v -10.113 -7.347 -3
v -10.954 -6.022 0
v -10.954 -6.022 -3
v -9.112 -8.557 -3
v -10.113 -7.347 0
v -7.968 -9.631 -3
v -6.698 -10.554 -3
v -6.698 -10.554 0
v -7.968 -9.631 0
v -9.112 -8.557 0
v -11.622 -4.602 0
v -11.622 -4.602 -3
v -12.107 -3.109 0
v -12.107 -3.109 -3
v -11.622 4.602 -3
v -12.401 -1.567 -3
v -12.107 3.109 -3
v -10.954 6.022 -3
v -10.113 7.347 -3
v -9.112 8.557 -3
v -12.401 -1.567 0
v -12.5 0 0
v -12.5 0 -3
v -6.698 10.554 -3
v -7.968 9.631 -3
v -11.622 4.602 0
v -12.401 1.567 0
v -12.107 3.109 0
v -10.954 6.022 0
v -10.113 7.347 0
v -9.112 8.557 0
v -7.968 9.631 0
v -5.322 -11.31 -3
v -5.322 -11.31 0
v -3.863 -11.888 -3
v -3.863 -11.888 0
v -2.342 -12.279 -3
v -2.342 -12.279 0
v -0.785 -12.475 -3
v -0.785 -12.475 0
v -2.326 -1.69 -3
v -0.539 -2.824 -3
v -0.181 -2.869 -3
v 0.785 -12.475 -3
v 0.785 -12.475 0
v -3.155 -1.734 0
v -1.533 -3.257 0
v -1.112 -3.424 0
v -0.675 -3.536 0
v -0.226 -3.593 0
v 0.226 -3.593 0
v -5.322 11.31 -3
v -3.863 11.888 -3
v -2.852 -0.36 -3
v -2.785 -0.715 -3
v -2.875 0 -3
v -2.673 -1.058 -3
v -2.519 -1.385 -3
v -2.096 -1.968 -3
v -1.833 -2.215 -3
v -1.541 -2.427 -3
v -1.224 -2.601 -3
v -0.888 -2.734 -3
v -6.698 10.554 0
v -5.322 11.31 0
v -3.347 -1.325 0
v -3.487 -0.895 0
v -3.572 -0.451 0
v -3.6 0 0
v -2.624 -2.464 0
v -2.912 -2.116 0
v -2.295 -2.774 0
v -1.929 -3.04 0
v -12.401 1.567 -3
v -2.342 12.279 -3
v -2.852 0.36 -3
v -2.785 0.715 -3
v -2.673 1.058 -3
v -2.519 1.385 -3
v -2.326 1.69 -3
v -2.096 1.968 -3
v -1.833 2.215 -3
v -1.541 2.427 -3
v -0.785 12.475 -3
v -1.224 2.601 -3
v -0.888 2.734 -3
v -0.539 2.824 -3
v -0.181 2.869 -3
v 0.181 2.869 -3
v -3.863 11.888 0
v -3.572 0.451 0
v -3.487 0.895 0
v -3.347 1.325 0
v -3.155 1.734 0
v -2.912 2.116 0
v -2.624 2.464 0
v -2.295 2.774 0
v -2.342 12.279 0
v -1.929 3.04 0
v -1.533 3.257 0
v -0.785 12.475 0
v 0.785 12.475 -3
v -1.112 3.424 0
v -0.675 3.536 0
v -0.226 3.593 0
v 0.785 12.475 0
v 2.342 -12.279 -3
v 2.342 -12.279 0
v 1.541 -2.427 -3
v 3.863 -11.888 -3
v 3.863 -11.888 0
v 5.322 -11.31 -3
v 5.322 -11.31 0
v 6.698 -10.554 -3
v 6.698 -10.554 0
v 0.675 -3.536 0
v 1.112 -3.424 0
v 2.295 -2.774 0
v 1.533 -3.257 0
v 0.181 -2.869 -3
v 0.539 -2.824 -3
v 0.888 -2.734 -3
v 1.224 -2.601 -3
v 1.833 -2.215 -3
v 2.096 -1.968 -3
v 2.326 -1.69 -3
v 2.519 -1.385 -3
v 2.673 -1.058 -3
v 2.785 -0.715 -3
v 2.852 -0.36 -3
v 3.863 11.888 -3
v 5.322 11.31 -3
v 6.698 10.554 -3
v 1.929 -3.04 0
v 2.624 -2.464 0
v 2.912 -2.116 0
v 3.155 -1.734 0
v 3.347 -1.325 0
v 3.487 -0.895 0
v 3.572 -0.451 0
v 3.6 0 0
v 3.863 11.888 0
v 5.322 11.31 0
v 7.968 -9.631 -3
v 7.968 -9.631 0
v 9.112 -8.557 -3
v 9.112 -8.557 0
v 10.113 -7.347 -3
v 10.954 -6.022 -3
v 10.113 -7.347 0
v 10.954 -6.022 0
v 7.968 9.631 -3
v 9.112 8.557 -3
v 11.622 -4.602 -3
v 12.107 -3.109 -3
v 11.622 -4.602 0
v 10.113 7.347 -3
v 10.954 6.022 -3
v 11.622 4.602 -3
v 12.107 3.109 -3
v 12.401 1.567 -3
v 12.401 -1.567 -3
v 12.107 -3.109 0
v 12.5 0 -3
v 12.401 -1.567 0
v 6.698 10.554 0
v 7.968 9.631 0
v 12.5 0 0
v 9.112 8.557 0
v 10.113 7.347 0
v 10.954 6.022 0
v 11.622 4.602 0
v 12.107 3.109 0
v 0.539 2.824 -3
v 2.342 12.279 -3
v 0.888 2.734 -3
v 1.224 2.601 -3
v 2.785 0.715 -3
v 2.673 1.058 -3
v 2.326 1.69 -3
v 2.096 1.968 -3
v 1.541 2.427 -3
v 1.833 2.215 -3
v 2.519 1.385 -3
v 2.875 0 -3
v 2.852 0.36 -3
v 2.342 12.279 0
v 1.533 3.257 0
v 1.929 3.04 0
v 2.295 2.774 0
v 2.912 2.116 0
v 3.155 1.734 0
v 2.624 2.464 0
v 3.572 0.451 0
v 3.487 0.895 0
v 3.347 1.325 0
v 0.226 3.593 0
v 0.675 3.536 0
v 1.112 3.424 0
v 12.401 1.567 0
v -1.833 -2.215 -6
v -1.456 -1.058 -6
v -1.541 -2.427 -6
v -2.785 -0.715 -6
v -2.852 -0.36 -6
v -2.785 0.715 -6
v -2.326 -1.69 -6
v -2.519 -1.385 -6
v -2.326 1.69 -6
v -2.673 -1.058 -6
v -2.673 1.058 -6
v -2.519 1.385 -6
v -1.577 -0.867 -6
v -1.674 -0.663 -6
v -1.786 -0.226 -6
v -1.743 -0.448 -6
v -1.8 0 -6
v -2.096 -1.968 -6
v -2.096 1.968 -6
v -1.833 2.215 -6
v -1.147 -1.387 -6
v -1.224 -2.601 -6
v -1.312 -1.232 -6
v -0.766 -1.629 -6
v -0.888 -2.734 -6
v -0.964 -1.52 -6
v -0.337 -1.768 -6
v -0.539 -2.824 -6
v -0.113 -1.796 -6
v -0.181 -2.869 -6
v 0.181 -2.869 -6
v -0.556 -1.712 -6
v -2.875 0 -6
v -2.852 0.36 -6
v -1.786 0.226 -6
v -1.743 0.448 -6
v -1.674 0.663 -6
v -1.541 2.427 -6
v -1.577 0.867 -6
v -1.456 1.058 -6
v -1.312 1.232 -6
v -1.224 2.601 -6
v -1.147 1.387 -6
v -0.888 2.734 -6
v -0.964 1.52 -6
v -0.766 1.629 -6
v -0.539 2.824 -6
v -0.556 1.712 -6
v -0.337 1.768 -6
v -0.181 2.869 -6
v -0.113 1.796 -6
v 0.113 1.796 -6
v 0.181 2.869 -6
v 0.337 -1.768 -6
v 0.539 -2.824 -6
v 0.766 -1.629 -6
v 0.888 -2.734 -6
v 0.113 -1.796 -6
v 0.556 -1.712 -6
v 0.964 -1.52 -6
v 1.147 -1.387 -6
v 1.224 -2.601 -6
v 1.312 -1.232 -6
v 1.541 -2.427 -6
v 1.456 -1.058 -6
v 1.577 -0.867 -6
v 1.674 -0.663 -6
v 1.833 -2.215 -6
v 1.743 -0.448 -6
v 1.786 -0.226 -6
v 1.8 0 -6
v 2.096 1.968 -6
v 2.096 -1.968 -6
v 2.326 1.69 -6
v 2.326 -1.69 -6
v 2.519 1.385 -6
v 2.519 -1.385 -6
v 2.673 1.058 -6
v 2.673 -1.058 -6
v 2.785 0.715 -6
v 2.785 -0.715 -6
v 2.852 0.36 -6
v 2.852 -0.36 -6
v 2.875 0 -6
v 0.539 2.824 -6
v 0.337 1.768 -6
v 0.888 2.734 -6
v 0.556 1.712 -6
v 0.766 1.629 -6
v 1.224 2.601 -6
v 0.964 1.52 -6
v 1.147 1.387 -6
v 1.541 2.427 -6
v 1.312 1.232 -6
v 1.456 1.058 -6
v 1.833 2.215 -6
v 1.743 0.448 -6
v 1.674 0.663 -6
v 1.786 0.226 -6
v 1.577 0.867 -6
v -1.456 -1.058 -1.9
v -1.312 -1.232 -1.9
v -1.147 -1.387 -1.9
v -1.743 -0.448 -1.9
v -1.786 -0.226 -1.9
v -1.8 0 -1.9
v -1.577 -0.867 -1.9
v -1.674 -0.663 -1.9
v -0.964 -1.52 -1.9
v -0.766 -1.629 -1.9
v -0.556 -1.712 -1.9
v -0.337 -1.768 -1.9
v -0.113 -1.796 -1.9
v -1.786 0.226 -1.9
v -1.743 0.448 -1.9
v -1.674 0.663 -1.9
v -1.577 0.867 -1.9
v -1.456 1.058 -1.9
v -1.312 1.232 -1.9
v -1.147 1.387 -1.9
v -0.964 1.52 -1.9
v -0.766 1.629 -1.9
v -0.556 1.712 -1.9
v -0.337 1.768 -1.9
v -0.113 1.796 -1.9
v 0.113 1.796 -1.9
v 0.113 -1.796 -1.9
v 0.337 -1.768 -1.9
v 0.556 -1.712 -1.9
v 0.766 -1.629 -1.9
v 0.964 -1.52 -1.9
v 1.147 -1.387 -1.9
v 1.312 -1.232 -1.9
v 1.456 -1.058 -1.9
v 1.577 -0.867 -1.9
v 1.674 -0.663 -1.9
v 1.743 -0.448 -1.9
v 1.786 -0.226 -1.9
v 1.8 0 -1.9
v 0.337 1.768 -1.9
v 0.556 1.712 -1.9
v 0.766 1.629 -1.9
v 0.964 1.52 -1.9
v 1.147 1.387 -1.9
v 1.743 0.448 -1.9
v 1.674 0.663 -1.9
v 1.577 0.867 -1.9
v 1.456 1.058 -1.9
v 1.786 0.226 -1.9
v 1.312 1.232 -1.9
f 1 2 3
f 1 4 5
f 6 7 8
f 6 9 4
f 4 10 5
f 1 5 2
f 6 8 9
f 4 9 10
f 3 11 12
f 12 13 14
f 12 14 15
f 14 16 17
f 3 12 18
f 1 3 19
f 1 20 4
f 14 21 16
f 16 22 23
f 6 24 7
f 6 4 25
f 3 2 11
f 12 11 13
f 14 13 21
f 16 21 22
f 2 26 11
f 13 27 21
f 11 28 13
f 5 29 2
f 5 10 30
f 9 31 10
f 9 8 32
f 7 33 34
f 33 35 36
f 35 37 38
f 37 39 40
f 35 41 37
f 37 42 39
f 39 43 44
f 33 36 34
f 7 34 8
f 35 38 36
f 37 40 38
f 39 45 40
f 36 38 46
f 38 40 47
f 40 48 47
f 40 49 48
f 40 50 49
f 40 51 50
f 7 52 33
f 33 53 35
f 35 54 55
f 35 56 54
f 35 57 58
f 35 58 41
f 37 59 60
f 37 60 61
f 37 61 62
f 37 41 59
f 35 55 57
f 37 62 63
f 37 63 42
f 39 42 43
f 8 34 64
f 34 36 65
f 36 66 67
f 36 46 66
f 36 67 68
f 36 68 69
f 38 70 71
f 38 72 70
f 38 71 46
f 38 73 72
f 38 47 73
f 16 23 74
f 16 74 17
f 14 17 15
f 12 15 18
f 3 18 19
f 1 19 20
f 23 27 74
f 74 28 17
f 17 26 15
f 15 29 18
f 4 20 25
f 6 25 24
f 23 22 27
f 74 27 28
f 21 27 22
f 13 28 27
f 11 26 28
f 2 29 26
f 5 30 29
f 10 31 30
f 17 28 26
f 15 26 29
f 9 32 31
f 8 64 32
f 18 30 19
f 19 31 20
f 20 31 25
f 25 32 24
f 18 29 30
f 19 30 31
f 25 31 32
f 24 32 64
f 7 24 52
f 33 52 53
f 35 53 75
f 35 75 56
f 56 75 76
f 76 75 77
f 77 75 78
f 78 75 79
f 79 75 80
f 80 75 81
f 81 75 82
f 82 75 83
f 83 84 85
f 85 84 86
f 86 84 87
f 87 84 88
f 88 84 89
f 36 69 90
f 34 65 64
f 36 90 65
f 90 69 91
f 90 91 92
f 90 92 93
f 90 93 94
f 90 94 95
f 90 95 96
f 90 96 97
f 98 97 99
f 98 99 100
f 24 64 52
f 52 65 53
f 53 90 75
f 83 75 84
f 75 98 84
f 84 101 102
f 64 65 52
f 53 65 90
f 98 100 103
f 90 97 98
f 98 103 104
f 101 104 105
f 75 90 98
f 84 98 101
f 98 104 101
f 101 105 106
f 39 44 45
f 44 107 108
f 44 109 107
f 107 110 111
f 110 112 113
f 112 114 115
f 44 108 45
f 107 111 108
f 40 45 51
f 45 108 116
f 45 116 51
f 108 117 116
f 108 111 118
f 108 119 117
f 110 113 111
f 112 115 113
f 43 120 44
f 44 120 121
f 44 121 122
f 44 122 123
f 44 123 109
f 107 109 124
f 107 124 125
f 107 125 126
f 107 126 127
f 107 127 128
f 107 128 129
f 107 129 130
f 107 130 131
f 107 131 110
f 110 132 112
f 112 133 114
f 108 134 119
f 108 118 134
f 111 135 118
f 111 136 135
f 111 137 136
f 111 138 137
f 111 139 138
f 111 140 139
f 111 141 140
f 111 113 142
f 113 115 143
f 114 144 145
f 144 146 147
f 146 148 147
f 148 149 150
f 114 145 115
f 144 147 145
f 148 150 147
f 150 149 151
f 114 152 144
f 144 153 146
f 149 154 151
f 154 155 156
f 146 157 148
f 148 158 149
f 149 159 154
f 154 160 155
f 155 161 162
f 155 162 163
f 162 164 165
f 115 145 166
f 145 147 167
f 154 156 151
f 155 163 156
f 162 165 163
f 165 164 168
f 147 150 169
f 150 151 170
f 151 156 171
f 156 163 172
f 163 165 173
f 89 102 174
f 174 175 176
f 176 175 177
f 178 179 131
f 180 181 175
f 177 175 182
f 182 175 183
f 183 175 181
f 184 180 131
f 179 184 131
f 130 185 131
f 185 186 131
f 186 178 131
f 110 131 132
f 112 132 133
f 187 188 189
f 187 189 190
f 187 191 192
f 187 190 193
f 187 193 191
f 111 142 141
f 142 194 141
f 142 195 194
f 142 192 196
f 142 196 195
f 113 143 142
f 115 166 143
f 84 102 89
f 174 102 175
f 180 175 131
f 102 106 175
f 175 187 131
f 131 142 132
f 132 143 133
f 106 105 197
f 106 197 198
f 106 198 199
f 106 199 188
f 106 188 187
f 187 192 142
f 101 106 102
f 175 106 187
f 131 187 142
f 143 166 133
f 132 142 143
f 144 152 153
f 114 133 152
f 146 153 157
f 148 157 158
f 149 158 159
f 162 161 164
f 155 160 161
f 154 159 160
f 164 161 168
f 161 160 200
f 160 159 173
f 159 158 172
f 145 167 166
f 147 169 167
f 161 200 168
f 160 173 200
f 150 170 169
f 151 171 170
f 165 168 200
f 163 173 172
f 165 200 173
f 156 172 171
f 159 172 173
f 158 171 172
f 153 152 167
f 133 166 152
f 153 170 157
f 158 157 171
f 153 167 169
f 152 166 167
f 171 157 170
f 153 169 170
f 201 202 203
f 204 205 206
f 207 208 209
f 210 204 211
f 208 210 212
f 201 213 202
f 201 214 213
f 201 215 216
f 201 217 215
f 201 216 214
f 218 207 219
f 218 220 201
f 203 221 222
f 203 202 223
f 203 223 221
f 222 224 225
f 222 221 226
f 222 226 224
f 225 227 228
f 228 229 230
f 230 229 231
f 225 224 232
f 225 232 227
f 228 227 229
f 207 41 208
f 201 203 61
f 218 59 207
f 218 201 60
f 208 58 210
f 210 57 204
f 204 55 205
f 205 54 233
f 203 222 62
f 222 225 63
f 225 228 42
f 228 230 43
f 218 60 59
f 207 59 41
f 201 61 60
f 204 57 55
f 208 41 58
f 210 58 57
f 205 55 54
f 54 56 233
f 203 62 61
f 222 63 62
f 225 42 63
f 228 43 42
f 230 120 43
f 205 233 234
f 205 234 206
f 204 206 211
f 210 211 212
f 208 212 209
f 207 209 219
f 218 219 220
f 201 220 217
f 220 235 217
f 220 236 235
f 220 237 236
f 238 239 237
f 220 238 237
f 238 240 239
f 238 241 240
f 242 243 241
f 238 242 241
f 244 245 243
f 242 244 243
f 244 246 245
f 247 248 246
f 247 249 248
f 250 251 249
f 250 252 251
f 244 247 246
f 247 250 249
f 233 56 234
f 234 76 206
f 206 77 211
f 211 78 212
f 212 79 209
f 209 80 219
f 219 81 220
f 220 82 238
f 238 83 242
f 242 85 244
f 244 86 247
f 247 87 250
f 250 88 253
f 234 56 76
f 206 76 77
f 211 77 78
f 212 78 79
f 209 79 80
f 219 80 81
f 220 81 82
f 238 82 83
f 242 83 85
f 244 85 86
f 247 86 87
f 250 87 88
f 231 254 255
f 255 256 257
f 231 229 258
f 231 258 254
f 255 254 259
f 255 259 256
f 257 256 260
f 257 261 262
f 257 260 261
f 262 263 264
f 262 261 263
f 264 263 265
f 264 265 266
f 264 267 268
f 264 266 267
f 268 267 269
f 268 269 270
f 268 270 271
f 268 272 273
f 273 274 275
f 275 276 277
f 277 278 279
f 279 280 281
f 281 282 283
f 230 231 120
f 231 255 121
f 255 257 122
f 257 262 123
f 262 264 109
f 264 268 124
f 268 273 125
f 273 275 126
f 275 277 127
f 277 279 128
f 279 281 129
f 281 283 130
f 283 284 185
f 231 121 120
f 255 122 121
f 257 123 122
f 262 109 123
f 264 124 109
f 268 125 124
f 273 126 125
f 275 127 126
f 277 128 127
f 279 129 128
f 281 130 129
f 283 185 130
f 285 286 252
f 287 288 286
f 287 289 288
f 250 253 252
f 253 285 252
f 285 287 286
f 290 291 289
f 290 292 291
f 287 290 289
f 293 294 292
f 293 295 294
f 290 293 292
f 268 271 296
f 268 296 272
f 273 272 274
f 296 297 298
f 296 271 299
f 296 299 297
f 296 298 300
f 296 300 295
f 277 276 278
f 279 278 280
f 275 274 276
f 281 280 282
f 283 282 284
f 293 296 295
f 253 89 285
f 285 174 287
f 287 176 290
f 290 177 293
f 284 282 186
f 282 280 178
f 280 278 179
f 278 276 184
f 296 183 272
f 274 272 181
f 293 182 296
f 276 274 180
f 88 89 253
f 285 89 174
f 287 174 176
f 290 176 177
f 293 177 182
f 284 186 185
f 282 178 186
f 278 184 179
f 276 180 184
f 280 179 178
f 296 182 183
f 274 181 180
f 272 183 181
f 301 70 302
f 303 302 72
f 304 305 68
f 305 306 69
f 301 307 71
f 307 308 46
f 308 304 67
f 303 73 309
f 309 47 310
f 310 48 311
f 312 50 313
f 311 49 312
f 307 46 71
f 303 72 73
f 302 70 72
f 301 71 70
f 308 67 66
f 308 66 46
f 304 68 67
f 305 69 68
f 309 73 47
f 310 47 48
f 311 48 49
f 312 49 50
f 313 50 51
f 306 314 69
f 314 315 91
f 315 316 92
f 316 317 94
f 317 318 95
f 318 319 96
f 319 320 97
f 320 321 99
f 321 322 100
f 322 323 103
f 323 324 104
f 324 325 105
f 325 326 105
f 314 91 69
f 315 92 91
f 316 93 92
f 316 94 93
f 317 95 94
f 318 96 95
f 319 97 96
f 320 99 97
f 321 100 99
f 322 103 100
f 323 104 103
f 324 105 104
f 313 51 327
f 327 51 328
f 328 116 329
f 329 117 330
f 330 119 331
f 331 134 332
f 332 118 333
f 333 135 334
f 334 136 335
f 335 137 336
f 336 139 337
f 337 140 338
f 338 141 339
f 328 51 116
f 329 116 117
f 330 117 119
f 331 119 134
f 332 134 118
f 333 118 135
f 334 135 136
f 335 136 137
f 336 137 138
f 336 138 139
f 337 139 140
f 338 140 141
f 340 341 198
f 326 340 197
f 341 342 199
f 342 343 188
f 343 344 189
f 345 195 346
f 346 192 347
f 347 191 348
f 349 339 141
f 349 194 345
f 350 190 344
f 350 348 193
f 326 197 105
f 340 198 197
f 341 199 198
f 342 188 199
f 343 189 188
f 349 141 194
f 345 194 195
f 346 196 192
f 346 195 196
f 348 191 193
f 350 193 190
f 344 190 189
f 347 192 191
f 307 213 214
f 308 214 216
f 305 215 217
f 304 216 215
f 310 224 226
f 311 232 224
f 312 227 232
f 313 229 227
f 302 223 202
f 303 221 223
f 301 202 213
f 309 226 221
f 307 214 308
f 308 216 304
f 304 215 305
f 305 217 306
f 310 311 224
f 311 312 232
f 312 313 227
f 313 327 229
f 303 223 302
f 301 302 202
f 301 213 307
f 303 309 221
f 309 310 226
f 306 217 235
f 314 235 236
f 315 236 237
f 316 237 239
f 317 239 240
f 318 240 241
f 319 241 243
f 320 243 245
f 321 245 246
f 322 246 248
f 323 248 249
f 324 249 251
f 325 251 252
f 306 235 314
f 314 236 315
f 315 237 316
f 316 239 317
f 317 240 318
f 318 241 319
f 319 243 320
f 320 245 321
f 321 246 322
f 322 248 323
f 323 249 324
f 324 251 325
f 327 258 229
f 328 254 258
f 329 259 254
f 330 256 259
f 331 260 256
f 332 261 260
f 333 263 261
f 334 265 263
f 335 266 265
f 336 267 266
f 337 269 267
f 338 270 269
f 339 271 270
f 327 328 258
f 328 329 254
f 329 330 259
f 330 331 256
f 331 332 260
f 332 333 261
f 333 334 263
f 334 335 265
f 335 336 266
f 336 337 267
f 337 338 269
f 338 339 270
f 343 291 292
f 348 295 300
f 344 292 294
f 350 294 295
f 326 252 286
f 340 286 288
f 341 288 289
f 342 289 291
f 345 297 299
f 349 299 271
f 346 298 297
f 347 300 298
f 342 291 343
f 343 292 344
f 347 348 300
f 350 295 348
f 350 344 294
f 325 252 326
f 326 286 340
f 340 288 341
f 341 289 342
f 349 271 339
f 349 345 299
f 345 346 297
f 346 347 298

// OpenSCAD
$fn = 50;

difference() {
	union() {
		translate(v = [0, 0, -3.0]) {
			cylinder(h = 3, r = 12.5);
		}
		#translate(v = [0, 0, -6.0]) {
			cylinder(h = 6, r = 2.875);
		}
	}
	union() {
		translate(v = [0, 0, 0]) {
			rotate(a = [0, 0, 0]) {
				difference() {
					union() {
						translate(v = [0, 0, -6.0]) {
							cylinder(h = 6, r = 1.5);
						}
						translate(v = [0, 0, -1.9]) {
							cylinder(h = 1.9, r1 = 1.8, r2 = 3.6);
						}
						translate(v = [0, 0, -6.0]) {
							cylinder(h = 6, r = 1.8);
						}
						translate(v = [0, 0, -6.0]) {
							cylinder(h = 6, r = 1.5);
						}
					}
					union();
				}
			}
		}
	}
}
